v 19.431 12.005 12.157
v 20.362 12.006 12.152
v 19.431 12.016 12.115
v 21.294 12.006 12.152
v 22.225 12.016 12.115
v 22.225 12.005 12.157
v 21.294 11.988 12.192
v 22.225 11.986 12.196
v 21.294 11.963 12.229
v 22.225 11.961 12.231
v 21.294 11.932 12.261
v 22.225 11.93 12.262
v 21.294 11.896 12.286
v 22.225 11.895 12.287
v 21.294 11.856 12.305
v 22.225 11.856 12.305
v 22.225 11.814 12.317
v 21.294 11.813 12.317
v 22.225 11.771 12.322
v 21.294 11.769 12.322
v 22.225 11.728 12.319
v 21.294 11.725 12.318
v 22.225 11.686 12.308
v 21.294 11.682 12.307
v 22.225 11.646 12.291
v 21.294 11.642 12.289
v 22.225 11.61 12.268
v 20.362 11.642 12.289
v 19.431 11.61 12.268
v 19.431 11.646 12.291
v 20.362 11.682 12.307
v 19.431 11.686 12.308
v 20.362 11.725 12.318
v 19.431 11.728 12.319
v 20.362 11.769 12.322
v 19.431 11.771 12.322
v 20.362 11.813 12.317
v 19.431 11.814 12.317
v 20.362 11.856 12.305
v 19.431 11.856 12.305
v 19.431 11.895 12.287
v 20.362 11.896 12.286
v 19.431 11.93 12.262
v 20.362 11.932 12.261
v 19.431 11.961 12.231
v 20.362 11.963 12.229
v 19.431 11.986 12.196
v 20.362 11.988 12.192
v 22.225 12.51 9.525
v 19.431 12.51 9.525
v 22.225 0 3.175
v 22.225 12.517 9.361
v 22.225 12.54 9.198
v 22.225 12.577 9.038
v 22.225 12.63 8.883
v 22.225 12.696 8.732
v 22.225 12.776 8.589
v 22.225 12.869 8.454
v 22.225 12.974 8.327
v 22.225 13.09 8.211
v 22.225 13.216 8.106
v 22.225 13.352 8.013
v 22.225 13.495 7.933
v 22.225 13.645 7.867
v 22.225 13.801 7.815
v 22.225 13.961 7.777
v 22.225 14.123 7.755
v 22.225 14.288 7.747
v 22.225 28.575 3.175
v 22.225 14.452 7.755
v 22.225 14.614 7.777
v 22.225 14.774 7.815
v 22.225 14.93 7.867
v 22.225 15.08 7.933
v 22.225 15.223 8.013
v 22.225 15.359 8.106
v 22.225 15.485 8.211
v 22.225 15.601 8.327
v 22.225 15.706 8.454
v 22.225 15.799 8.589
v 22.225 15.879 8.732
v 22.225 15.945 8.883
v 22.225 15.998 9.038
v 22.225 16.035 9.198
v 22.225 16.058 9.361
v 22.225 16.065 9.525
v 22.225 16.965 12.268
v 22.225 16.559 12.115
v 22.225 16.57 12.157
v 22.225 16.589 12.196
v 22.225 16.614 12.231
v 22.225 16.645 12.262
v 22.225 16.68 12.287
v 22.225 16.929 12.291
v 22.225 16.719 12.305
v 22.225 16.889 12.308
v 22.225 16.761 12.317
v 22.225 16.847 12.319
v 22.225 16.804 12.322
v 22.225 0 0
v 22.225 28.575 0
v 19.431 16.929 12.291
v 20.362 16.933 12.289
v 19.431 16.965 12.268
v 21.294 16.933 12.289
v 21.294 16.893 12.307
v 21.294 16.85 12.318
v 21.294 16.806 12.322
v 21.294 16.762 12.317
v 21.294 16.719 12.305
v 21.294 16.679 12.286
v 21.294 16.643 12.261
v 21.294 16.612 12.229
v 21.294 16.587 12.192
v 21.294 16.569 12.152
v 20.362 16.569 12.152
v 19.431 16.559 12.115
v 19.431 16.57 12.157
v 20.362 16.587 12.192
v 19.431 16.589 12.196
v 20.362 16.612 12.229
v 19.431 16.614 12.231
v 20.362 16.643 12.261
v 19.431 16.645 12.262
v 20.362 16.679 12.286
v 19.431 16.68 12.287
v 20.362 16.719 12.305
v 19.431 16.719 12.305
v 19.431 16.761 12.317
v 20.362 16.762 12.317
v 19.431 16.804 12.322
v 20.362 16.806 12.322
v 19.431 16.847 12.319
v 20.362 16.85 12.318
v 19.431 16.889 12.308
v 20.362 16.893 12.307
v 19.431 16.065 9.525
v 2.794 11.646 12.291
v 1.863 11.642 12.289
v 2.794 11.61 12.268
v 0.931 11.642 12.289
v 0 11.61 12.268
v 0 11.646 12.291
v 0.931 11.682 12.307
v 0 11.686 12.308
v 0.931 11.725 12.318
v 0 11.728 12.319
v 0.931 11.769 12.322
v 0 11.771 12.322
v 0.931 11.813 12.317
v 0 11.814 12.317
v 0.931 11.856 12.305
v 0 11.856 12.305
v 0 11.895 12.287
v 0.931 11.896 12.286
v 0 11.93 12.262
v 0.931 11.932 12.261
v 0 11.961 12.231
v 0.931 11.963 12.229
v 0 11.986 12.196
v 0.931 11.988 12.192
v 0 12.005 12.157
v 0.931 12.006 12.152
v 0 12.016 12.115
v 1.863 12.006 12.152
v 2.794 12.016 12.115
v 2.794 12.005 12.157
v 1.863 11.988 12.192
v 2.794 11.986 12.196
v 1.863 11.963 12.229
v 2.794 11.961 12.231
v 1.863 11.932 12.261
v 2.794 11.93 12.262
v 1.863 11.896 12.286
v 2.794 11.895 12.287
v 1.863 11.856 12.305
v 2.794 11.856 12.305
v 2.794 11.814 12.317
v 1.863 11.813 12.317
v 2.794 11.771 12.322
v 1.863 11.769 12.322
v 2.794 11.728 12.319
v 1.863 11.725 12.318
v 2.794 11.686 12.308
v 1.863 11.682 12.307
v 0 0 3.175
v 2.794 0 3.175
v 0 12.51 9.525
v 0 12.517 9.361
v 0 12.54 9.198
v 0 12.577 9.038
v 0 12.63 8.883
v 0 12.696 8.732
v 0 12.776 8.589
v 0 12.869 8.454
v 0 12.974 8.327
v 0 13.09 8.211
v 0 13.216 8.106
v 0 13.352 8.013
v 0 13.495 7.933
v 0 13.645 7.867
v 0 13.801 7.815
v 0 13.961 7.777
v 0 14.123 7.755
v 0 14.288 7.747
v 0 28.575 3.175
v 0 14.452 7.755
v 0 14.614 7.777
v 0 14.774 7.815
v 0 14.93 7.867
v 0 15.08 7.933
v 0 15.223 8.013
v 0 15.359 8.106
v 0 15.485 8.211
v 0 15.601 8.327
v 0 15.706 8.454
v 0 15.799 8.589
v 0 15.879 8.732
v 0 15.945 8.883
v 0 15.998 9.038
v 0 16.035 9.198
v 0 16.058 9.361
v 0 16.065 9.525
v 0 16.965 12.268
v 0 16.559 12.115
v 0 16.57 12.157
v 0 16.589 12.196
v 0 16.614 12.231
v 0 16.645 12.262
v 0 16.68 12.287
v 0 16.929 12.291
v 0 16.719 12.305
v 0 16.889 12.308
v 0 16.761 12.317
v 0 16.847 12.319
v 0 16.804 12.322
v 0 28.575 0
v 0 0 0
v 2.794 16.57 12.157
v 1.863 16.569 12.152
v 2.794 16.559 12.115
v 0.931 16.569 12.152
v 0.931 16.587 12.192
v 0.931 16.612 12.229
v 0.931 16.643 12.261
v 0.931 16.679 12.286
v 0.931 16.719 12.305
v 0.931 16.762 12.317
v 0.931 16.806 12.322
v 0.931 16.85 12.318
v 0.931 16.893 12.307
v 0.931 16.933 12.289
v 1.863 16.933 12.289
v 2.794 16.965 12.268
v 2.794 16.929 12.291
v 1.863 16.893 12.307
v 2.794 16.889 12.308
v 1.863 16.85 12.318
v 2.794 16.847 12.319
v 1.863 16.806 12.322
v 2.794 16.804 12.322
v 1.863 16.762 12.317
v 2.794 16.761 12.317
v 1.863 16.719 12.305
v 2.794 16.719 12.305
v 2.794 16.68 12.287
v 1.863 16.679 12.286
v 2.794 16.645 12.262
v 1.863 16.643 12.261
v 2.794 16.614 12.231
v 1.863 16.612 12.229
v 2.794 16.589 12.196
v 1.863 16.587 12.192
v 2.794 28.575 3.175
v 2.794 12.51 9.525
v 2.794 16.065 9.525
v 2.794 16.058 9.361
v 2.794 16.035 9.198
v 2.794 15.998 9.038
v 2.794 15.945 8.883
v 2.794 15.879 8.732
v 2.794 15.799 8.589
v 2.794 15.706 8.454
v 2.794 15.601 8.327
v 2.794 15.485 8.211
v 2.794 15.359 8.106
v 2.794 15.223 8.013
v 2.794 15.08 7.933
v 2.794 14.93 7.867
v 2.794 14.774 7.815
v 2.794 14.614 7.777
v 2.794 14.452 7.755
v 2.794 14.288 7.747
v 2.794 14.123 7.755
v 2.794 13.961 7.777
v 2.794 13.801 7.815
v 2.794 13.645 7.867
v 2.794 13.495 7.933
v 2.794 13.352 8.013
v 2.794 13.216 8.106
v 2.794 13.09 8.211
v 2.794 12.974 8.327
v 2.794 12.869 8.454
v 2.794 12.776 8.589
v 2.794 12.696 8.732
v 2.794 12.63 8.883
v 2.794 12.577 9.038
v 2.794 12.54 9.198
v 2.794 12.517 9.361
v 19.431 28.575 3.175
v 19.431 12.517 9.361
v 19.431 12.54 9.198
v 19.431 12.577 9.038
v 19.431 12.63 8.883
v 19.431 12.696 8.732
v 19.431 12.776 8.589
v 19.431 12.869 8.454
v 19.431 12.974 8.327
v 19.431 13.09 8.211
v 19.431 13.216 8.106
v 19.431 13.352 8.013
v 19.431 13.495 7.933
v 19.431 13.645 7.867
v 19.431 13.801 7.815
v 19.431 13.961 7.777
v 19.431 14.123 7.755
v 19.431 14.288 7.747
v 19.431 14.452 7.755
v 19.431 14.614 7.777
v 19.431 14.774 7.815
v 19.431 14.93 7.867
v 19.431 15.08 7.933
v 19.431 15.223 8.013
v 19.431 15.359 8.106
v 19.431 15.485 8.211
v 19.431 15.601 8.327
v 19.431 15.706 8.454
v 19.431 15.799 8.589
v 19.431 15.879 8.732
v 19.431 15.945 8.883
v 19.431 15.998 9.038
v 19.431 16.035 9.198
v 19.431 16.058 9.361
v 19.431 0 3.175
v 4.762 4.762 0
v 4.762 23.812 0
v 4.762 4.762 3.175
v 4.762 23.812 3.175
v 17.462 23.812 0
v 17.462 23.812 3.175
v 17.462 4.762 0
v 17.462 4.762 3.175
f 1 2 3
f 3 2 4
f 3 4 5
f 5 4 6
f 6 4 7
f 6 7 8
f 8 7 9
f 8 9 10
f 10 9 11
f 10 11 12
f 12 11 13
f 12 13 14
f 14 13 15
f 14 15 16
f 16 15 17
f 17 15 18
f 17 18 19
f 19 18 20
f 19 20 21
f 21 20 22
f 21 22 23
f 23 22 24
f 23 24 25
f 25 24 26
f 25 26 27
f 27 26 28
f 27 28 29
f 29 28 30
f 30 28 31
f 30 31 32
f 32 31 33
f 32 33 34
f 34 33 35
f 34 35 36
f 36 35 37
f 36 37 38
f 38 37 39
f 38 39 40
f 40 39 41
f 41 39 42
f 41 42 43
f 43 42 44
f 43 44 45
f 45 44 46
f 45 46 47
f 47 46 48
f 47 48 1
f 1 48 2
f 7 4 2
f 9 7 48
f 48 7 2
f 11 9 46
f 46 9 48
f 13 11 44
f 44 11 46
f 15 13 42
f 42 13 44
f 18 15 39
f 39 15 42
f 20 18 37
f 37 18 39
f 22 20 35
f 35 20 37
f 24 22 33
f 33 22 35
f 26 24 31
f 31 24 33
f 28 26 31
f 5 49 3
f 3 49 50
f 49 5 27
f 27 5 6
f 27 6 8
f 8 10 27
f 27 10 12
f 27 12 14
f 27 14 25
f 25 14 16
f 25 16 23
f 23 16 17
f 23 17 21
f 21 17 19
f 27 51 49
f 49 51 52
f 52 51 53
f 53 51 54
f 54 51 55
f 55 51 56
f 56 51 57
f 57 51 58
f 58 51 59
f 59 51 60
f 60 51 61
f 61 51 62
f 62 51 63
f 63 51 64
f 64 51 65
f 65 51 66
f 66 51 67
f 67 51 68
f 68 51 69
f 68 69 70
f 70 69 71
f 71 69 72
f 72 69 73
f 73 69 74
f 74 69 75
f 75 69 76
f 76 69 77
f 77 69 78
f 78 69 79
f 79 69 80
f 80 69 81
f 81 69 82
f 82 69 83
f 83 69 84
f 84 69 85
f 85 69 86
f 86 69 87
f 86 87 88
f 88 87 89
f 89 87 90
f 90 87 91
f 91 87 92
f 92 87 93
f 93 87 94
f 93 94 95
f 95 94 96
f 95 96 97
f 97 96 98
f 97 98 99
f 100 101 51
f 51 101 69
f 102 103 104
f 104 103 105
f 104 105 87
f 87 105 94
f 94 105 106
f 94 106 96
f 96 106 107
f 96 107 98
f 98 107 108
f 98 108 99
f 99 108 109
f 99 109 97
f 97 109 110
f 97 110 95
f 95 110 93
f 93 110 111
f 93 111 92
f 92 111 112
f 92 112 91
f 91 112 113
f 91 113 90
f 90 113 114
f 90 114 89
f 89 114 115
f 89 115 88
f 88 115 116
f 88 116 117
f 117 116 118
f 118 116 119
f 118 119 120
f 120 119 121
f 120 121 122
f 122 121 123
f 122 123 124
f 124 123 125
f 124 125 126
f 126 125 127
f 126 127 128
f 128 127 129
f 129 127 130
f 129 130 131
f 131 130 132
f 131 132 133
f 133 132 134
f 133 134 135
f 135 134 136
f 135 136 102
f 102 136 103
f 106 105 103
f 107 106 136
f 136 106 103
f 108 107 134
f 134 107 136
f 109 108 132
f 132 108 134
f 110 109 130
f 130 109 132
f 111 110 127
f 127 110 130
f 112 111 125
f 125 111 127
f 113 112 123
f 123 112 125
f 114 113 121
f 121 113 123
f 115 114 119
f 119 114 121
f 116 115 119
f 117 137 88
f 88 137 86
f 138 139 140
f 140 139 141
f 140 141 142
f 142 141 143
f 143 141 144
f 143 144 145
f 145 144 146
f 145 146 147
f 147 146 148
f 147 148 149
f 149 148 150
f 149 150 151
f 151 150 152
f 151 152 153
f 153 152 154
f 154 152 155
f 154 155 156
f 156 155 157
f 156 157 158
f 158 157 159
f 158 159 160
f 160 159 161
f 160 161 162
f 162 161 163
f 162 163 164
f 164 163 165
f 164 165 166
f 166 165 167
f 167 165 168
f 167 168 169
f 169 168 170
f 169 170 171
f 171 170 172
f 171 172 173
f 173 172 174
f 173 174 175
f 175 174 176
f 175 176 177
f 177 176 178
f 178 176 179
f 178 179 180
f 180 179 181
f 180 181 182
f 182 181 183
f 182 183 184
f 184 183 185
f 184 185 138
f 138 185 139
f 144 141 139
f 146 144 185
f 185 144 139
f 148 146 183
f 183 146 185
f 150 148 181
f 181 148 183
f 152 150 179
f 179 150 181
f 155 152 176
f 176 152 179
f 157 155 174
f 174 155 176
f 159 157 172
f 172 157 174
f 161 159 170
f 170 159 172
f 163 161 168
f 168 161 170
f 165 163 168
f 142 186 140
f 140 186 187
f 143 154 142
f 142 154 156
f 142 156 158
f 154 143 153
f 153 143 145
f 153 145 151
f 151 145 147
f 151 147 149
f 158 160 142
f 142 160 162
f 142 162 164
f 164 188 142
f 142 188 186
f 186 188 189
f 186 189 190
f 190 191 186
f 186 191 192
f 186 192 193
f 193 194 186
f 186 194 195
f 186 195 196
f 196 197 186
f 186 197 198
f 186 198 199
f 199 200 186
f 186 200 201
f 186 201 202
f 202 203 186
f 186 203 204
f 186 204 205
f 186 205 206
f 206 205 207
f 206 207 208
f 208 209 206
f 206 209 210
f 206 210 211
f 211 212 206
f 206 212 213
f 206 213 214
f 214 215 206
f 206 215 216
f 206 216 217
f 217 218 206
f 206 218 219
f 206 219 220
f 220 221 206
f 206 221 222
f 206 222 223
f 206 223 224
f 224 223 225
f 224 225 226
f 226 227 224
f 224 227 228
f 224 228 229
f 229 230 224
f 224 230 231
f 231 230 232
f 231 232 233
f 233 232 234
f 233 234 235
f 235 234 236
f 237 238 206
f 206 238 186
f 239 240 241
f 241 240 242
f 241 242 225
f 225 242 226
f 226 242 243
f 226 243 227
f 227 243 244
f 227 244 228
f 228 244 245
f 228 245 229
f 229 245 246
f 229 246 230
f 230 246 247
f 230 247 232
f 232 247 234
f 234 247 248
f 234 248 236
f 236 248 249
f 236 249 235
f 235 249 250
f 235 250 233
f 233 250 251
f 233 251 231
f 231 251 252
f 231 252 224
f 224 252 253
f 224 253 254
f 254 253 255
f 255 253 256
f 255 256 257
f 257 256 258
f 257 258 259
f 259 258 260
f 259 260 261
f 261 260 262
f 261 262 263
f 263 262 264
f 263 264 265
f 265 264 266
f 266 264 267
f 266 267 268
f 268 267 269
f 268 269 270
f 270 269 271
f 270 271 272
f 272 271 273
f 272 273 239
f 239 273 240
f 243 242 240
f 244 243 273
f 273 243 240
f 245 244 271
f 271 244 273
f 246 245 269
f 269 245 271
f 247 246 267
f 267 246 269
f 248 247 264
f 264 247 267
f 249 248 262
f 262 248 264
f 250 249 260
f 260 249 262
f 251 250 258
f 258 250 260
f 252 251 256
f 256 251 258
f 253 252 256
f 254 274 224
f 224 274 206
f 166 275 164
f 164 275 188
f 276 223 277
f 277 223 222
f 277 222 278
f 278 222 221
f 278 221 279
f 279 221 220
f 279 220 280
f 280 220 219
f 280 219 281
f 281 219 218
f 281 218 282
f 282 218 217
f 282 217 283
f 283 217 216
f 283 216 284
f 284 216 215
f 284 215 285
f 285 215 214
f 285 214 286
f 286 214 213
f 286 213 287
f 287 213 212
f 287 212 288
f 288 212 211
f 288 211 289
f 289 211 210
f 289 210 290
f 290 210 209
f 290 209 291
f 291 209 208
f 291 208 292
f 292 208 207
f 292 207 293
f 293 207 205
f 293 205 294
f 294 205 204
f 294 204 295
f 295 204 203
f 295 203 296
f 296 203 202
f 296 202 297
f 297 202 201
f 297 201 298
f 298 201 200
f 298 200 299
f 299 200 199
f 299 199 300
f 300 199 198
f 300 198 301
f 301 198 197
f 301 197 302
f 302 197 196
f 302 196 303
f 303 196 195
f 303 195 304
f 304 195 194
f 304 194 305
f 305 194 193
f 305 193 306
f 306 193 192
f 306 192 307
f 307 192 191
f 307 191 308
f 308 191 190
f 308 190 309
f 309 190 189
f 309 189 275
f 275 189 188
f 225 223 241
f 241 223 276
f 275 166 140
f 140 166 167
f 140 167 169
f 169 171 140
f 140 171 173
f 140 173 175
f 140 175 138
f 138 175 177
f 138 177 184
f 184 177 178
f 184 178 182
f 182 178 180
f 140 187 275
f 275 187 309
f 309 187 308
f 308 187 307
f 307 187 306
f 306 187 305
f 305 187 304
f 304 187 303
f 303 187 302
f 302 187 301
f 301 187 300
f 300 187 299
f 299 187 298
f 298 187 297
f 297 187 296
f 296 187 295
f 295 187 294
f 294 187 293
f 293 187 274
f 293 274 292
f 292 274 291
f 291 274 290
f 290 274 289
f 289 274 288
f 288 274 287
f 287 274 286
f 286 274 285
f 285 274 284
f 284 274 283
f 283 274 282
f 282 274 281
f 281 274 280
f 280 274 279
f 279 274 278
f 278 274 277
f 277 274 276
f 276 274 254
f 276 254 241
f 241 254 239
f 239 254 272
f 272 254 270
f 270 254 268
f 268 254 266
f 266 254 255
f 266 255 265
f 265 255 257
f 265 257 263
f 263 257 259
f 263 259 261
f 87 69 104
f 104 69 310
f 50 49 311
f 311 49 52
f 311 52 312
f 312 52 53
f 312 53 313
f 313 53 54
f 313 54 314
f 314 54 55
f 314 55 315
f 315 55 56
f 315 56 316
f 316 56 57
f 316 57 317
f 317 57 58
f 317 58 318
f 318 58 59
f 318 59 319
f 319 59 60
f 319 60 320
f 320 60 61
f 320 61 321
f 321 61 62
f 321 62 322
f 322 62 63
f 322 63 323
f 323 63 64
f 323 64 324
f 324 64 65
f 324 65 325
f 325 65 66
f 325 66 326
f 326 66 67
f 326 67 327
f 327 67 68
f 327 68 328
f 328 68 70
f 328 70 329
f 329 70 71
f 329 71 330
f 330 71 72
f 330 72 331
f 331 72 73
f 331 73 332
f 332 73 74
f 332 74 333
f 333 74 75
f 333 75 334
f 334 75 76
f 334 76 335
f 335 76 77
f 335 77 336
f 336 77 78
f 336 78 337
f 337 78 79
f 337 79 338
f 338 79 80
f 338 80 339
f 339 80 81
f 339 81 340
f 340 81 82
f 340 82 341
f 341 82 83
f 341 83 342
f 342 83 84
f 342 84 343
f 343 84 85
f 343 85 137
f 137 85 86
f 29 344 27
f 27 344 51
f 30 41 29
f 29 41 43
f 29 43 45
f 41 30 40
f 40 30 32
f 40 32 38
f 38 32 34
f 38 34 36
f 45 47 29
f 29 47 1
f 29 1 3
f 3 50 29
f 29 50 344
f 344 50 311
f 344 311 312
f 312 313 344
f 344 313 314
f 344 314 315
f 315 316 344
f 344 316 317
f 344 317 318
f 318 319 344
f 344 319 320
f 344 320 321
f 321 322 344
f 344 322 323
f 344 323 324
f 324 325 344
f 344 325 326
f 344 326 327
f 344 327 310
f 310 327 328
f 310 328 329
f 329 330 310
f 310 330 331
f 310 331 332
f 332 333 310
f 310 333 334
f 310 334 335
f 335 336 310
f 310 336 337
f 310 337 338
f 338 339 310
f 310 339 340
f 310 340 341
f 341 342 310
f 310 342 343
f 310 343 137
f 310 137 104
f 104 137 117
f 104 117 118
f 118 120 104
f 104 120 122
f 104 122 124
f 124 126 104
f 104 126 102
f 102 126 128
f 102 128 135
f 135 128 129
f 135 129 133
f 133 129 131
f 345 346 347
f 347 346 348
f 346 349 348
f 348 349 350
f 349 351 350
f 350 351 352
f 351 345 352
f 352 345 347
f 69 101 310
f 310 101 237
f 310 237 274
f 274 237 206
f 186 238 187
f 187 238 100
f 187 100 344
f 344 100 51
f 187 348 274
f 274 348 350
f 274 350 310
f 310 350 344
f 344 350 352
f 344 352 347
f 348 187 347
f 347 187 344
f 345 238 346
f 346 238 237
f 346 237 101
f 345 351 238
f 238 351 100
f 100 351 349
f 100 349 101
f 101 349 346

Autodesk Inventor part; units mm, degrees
ref_plane "YZ Plane" through (0, 0, 0) normal (1, 0, 0) x (0, 1, 0)
ref_plane "XZ Plane" through (0, 0, 0) normal (0, 1, 0) x (-1, 0, 0)
ref_plane "XY Plane" through (0, 0, 0) normal (0, 0, 1) x (1, 0, 0)
sketch "Sketch1" plane through (0, 0, 0) normal (0, 0, 1) x (1, 0, 0)
  line L0 (0, 0) -> (22.225, 0)
  line L1 (22.225, 0) -> (22.225, 28.575)
  line L2 (22.225, 28.575) -> (0, 28.575)
  line L3 (0, 28.575) -> (0, 0)
  line L4 (4.7625, 4.7625) -> (17.4625, 4.7625)
  line L5 (17.4625, 4.7625) -> (17.4625, 23.8125)
  line L6 (17.4625, 23.8125) -> (4.7625, 23.8125)
  line L7 (4.7625, 23.8125) -> (4.7625, 4.7625)
  point P0 (17.4625, 14.2875)
  point P1 (22.225, 14.2875)
  point P2 (11.1125, 23.8125)
  point P3 (11.1125, 28.575)
  dimension "d0" = 22.225
  dimension "d1" = 28.575
  dimension "d2" = 19.05
  dimension "d3" = 12.7
extrude "Extrusion1" add sketch "Sketch1" along normal blind 3.175
sketch "Sketch2" plane through (22.225, 0, 0) normal (1, 0, 0) x (0, 0, -1)
  line L0 (-3.175, 0) -> (-3.175, 28.575) projected
  arc A0 (-9.525, 12.5095) -> (-9.525, 16.0655) centre (-9.525, 14.2875) ccw
  arc A1 (-12.5246, 11.9383) -> (-12.5246, 16.6367) centre (-9.525, 14.2875) ccw
  line L1 (-3.175, 28.575) -> (-12.5246, 16.6367)
  line L2 (-3.175, 0) -> (-12.5246, 11.9383)
  line L3 (-12.5246, 11.9383) -> (-9.525, 12.5095)
  line L4 (-12.5246, 16.6367) -> (-9.525, 16.0655)
  point P0 (0, 0)
  point P1 (-3.175, 14.2875)
  dimension "d6" = 3.556
  dimension "d7" = 6.35
  dimension "d8" = 7.62
extrude "Extrusion2" add sketch "Sketch2" against normal blind 2.794
sketch "Sketch3" plane through (0, 0, 0) normal (-1, 0, 0) x (0, 0, 1)
  line L0 (3.175, 0) -> (3.175, 28.575) projected
  line L1 (3.175, 0) -> (12.5246, 11.9383) projected
  line L2 (12.5246, 11.9383) -> (9.525, 12.5095) projected
  arc A0 (9.525, 16.0655) -> (9.525, 12.5095) centre (9.525, 14.2875) ccw projected
  line L3 (9.525, 16.0655) -> (12.5246, 16.6367) projected
  line L4 (12.5246, 16.6367) -> (3.175, 28.575) projected
  point P0 (0, 0)
extrude "Extrusion3" add sketch "Sketch3" against normal blind 2.794
fillet "Fillet1" radius 0.254 4 edges at (1.397, 16.6367, 12.5246) (1.397, 11.9383, 12.5246) (20.828, 16.6367, 12.5246) (20.828, 11.9383, 12.5246)
properties part number "switchHolder"
